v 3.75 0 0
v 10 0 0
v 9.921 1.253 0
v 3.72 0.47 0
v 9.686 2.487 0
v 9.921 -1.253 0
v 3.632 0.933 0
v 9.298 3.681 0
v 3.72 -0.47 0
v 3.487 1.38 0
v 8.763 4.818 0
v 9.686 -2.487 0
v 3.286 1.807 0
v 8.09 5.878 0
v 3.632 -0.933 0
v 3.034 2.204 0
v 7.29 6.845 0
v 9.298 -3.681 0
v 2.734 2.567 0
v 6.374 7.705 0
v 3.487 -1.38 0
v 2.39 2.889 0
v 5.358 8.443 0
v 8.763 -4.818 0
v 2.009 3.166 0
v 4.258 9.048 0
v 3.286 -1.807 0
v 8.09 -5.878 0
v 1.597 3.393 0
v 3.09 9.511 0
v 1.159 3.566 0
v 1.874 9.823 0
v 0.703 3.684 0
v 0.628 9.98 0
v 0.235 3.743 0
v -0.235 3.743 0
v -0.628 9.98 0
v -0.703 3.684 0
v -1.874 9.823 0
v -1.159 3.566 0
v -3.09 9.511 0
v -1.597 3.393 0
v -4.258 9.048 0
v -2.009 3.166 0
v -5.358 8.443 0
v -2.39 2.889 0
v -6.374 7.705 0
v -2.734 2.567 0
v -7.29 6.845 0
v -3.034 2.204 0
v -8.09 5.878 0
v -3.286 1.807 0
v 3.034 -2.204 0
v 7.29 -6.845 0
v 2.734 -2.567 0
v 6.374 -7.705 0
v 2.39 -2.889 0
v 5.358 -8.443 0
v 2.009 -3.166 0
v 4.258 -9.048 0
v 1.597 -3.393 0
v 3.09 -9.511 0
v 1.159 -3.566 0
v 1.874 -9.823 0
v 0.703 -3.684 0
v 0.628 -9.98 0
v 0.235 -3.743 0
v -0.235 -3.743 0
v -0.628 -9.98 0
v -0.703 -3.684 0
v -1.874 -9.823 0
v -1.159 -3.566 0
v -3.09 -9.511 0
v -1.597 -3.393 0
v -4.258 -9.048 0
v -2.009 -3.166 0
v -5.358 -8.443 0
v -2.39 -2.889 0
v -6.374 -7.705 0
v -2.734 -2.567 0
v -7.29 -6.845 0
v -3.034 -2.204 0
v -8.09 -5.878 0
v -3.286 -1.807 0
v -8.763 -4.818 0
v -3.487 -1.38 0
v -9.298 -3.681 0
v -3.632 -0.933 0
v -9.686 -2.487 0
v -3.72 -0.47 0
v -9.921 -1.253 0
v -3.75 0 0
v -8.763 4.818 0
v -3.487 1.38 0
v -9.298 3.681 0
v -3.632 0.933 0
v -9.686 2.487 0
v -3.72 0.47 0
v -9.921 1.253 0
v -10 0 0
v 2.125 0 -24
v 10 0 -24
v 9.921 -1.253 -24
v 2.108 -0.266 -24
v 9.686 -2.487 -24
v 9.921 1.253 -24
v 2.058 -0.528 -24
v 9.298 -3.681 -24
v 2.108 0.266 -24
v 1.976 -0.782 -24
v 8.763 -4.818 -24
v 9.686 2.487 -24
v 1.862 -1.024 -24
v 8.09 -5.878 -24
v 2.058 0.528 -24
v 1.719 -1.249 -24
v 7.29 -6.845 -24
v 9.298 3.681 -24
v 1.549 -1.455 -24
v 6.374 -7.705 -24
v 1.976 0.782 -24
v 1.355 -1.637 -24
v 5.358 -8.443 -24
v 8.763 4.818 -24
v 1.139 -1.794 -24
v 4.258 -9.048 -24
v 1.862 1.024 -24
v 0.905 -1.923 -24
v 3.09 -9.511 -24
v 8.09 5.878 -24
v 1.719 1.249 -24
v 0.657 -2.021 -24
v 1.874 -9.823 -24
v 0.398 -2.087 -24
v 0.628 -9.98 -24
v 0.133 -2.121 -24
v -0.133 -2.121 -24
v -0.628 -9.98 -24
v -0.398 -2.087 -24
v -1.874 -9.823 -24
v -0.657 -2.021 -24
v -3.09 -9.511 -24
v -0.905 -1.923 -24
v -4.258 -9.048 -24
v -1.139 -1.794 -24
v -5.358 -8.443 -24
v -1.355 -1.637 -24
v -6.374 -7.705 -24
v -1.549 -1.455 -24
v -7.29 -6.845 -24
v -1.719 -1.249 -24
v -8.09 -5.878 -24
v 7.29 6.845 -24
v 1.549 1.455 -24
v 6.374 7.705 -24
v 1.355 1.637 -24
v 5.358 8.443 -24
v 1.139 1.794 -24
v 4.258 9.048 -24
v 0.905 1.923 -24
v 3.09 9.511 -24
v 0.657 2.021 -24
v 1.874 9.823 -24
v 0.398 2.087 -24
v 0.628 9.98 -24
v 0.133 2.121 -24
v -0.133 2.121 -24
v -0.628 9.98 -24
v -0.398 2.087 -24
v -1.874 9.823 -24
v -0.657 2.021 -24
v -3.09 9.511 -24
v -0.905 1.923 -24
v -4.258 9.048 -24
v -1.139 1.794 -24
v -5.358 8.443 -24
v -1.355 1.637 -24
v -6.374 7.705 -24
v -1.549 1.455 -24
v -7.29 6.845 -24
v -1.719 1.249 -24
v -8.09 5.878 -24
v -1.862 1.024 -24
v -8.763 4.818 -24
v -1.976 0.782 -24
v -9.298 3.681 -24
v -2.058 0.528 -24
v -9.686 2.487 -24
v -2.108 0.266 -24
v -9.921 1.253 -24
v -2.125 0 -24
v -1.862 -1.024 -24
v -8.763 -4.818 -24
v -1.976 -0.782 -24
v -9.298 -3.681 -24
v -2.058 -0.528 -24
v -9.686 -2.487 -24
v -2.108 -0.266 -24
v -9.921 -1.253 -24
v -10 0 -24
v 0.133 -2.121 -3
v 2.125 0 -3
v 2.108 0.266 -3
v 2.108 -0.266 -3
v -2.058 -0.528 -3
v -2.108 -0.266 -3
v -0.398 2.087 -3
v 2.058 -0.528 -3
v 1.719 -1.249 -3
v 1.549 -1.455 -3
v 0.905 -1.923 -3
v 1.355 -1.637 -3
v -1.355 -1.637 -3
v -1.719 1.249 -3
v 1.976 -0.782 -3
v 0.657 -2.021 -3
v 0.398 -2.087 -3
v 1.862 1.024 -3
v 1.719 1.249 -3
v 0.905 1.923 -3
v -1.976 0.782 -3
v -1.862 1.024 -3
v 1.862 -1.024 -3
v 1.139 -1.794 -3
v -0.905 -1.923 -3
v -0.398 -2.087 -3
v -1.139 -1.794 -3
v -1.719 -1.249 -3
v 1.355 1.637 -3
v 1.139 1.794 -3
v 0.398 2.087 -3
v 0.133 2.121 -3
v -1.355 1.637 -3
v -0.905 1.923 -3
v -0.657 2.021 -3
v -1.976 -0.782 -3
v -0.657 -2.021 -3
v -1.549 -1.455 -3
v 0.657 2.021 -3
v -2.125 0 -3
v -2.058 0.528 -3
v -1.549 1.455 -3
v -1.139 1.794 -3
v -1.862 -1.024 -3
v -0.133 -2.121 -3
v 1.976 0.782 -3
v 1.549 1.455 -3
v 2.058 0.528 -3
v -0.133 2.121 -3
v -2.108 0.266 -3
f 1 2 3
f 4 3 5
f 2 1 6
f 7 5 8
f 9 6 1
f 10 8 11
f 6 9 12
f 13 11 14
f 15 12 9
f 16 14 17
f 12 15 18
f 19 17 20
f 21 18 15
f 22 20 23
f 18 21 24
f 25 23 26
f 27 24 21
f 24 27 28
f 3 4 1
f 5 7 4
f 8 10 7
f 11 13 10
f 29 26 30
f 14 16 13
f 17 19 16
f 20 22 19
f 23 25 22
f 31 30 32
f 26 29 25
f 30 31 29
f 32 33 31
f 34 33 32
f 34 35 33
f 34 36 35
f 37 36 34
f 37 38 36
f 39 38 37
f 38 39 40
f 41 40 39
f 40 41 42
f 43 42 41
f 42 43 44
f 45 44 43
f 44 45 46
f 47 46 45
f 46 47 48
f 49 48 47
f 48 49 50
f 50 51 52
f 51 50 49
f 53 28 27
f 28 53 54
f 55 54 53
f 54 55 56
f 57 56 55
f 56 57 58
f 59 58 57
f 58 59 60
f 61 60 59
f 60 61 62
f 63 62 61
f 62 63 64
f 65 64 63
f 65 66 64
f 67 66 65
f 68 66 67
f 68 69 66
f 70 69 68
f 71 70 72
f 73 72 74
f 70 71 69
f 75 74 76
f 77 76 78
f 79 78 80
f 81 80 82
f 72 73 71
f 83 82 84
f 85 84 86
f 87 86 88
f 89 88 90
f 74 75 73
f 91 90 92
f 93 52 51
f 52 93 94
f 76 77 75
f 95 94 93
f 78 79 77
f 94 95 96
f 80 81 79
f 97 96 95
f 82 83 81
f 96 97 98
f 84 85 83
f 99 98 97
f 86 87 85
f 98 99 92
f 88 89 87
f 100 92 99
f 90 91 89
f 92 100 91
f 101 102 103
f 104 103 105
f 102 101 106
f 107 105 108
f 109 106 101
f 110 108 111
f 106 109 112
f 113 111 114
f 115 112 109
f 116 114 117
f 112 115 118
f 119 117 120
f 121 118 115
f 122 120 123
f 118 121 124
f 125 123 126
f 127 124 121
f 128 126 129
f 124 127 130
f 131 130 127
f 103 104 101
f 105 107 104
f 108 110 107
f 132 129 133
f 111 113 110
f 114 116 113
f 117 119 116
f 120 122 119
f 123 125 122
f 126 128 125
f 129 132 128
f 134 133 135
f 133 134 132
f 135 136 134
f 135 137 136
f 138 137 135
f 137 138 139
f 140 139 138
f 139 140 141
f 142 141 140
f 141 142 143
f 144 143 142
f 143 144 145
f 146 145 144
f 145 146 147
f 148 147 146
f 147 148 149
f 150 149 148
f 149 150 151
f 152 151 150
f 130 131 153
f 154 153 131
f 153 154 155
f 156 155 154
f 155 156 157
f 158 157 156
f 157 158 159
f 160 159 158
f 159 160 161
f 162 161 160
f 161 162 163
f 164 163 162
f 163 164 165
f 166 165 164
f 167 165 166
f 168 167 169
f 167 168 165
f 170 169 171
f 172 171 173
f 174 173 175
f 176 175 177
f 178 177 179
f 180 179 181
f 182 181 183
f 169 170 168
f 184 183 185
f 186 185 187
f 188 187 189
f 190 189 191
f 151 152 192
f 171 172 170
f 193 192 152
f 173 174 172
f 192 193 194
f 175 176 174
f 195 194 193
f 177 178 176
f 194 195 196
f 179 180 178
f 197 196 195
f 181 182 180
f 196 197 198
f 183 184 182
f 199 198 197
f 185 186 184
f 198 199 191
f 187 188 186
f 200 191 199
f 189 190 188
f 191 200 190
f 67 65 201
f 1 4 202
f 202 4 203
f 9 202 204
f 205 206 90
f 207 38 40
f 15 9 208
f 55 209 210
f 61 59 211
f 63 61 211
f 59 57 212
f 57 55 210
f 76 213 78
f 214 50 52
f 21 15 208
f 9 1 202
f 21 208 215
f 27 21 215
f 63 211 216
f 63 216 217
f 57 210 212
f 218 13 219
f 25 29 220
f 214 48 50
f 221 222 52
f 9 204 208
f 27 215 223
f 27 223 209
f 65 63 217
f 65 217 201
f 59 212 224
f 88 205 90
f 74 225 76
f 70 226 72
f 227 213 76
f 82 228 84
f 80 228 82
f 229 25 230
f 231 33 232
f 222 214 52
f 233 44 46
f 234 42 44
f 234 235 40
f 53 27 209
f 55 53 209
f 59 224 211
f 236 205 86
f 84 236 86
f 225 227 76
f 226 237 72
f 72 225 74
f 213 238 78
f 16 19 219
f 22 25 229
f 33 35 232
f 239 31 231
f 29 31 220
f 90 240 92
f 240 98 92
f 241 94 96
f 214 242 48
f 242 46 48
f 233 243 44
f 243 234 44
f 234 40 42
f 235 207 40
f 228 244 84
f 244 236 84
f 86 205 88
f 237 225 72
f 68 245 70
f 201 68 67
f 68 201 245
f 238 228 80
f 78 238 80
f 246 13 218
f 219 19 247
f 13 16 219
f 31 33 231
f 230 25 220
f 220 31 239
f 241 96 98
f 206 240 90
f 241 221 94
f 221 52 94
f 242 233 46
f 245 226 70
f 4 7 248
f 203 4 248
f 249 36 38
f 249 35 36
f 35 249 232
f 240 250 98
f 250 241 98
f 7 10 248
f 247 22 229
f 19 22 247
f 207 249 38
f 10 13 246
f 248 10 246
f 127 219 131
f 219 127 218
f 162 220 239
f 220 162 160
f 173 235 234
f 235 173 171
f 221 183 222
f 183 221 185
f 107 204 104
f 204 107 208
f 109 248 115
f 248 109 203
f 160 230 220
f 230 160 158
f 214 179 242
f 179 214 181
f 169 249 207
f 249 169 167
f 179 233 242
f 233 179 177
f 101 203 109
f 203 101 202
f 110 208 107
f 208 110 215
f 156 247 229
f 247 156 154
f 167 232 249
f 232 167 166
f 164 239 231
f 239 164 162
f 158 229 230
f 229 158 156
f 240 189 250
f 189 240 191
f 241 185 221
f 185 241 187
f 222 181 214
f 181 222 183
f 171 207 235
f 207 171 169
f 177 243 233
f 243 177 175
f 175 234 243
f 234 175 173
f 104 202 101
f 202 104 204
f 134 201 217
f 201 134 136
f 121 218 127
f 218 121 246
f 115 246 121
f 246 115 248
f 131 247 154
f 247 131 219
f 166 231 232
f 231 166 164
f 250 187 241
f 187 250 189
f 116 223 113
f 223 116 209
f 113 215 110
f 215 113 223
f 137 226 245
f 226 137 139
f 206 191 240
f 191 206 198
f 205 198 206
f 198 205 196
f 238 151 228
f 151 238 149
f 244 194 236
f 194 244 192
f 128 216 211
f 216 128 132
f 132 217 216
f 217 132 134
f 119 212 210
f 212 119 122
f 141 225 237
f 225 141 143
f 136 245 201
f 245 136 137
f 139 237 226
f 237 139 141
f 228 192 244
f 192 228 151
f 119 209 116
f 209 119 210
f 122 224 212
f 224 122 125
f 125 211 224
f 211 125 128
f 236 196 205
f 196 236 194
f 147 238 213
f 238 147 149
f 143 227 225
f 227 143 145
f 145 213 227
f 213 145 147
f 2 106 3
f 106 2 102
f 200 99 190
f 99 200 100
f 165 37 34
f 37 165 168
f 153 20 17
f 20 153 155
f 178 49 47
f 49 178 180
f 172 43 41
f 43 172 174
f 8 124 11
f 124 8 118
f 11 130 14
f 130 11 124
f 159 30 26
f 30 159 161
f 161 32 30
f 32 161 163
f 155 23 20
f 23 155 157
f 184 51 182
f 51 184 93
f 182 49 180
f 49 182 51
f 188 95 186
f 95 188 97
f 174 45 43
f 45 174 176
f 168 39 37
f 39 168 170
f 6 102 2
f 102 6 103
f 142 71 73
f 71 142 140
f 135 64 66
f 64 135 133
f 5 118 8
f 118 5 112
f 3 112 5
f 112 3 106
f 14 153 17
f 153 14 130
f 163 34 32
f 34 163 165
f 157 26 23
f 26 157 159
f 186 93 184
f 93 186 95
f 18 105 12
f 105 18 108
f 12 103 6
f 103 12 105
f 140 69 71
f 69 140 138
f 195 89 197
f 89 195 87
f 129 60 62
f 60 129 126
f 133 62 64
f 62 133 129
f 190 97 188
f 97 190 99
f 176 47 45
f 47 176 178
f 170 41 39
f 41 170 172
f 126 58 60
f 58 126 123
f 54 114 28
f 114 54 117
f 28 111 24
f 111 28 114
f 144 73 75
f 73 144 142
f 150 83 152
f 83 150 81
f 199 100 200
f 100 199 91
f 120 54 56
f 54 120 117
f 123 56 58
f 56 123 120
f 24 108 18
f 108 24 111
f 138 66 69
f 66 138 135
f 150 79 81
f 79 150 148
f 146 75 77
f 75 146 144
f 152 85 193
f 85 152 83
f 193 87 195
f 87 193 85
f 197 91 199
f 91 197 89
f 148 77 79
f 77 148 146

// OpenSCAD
$fn = 50;


difference() {
	union() {
		translate(v = [0, 0, -24.0000000000]) {
			cylinder(h = 24, r = 10.0000000000);
		}
		cylinder(h = 0, r = 16.0000000000);
	}
	union() {
		translate(v = [0, 0, 0]) {
			rotate(a = [0, 0, 0]) {
				difference() {
					union() {
						#translate(v = [0, 0, -24.0000000000]) {
							cylinder(h = 24, r = 2.0000000000);
						}
						#translate(v = [0, 0, -3]) {
							cylinder(h = 3, r1 = 2.1250000000, r2 = 3.7500000000);
						}
						#translate(v = [0, 0, -24.0000000000]) {
							cylinder(h = 24, r = 2.1250000000);
						}
						#translate(v = [0, 0, -24.0000000000]) {
							cylinder(h = 24, r = 2.0000000000);
						}
					}
					union();
				}
			}
		}
	}
}
